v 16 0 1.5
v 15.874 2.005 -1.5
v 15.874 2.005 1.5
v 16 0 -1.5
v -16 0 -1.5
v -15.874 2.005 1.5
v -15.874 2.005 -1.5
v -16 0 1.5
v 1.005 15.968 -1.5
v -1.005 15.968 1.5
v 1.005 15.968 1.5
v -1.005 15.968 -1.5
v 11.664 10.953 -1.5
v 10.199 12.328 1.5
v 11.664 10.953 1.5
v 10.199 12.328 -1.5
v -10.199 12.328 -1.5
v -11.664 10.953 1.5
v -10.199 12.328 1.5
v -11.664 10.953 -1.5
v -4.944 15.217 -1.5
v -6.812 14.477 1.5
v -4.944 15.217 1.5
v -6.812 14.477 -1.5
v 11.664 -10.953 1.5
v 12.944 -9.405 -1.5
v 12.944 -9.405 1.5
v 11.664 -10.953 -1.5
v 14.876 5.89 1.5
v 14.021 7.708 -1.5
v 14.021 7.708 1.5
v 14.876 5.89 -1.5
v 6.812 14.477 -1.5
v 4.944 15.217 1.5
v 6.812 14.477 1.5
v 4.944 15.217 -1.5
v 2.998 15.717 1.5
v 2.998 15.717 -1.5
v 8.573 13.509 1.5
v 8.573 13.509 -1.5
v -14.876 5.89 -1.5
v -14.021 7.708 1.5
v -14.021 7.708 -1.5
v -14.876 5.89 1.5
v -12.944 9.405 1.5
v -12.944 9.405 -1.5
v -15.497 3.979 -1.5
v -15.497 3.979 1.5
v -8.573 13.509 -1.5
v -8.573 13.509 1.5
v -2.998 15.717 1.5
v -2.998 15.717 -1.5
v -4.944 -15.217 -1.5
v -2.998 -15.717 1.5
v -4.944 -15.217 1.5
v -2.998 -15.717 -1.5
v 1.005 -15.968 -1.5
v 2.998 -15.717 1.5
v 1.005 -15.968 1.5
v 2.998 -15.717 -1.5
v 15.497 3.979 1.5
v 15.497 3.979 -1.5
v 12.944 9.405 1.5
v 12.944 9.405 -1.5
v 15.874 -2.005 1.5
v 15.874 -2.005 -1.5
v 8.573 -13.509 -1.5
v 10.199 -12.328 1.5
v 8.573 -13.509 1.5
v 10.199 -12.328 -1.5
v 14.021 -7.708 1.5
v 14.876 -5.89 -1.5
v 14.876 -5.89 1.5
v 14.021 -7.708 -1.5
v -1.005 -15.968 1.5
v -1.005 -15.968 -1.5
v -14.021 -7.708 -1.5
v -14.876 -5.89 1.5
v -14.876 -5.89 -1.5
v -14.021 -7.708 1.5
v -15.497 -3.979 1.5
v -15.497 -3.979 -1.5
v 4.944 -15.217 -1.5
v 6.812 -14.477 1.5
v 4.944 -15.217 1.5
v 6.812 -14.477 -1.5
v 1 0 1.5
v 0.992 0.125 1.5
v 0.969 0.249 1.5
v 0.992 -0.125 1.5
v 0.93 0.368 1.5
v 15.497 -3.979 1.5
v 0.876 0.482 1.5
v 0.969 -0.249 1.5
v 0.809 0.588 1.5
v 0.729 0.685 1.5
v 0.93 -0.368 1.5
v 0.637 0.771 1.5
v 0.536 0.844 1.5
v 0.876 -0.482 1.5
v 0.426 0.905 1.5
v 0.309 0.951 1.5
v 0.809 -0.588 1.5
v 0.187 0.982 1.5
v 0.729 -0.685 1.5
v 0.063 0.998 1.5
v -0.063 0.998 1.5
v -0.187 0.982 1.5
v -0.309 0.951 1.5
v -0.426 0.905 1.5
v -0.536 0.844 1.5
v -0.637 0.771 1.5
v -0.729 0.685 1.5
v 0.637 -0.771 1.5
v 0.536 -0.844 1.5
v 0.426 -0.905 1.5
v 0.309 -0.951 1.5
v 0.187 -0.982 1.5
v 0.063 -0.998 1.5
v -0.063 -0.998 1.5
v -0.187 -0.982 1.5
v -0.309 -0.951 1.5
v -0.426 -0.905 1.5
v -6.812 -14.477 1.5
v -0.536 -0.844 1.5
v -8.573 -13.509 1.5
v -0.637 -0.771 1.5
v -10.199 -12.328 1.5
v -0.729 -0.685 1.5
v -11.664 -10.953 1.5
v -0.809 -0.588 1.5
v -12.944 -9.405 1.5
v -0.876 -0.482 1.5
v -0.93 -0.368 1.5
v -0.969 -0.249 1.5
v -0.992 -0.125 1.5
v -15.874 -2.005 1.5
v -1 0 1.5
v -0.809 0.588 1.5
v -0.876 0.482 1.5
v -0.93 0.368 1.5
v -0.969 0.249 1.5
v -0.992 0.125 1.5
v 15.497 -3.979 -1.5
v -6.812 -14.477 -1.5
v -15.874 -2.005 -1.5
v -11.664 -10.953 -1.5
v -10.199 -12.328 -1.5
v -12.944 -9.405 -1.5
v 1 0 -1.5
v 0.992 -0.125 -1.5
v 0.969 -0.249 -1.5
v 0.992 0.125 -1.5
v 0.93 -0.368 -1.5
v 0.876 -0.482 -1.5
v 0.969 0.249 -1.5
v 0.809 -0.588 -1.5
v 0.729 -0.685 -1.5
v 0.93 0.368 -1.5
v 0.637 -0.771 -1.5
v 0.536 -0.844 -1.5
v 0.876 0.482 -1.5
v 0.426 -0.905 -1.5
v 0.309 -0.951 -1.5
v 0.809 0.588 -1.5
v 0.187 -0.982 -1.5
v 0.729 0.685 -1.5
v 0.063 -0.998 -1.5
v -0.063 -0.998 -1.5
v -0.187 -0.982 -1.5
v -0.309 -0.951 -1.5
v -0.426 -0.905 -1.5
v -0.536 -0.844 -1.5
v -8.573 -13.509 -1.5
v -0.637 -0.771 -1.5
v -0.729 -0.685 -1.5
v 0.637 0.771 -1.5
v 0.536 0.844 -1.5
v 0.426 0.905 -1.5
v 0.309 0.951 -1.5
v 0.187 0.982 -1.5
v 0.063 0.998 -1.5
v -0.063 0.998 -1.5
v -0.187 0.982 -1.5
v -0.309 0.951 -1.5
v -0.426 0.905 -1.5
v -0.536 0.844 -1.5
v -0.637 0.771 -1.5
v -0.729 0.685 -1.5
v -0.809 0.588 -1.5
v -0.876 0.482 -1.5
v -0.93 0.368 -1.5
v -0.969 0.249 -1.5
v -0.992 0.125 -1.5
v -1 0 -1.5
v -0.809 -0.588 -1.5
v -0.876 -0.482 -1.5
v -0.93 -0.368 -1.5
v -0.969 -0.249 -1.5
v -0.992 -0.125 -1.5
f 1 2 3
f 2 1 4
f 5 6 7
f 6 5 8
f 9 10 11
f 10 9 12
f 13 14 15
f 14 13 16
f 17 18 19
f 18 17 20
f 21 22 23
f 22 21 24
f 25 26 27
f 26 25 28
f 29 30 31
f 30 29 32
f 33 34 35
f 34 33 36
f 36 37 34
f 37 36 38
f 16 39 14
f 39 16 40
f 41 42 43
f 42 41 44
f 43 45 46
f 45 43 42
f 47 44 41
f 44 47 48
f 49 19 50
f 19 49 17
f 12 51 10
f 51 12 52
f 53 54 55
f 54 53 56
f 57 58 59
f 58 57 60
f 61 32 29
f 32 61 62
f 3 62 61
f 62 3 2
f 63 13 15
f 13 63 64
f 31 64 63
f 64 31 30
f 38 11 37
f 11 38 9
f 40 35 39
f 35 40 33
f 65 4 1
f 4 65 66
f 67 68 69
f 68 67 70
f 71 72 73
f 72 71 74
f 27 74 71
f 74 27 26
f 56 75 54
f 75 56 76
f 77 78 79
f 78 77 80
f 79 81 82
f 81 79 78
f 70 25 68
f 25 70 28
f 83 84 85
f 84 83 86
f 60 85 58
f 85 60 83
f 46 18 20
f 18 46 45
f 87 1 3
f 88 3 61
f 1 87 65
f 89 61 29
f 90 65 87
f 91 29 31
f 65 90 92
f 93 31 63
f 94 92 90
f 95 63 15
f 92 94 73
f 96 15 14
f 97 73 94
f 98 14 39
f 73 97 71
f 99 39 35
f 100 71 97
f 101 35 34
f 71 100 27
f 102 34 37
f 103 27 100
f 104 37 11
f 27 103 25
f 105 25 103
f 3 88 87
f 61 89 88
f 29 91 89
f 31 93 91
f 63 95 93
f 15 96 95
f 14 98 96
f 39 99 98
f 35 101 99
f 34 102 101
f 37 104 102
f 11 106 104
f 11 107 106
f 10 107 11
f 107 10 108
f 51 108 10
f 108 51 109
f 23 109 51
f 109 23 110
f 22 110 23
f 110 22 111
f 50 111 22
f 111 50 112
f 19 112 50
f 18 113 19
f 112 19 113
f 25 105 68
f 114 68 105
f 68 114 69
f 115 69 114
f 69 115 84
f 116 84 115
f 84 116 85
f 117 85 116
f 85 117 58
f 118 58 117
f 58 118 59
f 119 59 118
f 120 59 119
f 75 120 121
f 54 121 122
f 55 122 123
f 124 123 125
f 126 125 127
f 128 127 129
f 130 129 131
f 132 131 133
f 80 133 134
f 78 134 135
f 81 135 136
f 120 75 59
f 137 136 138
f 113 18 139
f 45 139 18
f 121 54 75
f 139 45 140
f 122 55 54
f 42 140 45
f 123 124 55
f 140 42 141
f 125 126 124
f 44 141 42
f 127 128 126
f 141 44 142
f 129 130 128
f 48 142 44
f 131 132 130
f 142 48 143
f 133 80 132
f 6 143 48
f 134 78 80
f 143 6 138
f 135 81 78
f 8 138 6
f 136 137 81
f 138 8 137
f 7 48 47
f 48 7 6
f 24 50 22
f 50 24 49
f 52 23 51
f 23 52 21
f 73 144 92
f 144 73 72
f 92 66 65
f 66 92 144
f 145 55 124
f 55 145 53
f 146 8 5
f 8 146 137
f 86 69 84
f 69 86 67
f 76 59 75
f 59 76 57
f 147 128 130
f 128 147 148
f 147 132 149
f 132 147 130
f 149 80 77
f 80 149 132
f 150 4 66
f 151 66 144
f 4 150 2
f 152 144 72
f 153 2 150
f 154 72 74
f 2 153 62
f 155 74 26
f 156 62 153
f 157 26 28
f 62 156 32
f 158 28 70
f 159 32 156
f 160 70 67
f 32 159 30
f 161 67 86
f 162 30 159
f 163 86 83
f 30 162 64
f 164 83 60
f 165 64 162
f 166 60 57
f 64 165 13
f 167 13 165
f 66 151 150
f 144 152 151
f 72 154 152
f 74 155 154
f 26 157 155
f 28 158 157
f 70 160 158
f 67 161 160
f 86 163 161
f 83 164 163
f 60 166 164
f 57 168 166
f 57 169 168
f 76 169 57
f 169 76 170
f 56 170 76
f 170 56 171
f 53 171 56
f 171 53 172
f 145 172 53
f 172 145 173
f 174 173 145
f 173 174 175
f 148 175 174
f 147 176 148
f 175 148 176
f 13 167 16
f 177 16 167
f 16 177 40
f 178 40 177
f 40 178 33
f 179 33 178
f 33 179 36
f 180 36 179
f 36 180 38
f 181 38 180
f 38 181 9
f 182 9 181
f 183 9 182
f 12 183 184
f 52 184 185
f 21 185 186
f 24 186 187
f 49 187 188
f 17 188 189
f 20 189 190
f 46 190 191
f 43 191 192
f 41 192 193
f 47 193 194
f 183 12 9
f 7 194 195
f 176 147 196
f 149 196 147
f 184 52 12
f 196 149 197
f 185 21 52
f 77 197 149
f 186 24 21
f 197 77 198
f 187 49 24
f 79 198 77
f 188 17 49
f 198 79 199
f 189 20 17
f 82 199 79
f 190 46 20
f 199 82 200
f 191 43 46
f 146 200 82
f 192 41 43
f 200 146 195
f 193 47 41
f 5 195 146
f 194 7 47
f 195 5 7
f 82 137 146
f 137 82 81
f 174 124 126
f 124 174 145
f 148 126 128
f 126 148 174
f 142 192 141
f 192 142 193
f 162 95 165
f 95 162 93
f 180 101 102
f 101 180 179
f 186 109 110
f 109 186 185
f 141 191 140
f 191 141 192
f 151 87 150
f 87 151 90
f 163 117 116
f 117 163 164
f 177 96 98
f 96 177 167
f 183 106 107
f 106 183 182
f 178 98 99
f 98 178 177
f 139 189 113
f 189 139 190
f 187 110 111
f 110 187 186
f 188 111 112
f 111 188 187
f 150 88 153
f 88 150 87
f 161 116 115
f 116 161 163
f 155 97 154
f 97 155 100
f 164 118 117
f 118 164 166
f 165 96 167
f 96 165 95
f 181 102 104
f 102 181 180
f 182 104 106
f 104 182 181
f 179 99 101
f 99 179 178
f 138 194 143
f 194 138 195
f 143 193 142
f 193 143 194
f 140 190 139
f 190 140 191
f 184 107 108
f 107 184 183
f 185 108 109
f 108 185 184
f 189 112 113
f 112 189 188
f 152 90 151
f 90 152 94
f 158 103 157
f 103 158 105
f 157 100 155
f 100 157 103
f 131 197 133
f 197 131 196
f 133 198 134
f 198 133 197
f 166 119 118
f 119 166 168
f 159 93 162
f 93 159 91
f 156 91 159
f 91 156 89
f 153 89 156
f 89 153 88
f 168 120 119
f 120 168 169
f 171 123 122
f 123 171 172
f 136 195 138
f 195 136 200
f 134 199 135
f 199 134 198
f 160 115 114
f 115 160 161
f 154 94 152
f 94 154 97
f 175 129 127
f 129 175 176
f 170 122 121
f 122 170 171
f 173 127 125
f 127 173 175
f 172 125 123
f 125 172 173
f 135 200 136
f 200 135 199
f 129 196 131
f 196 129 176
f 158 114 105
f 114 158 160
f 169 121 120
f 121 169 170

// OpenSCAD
$fn = 50;


difference() {
	union() {
		translate(v = [0, 0, -1.5000000000]) {
			cylinder(h = 3, r = 16.0000000000);
		}
	}
	union() {
		translate(v = [0, 0, -100.0000000000]) {
			cylinder(h = 200, r = 1.0000000000);
		}
	}
}
